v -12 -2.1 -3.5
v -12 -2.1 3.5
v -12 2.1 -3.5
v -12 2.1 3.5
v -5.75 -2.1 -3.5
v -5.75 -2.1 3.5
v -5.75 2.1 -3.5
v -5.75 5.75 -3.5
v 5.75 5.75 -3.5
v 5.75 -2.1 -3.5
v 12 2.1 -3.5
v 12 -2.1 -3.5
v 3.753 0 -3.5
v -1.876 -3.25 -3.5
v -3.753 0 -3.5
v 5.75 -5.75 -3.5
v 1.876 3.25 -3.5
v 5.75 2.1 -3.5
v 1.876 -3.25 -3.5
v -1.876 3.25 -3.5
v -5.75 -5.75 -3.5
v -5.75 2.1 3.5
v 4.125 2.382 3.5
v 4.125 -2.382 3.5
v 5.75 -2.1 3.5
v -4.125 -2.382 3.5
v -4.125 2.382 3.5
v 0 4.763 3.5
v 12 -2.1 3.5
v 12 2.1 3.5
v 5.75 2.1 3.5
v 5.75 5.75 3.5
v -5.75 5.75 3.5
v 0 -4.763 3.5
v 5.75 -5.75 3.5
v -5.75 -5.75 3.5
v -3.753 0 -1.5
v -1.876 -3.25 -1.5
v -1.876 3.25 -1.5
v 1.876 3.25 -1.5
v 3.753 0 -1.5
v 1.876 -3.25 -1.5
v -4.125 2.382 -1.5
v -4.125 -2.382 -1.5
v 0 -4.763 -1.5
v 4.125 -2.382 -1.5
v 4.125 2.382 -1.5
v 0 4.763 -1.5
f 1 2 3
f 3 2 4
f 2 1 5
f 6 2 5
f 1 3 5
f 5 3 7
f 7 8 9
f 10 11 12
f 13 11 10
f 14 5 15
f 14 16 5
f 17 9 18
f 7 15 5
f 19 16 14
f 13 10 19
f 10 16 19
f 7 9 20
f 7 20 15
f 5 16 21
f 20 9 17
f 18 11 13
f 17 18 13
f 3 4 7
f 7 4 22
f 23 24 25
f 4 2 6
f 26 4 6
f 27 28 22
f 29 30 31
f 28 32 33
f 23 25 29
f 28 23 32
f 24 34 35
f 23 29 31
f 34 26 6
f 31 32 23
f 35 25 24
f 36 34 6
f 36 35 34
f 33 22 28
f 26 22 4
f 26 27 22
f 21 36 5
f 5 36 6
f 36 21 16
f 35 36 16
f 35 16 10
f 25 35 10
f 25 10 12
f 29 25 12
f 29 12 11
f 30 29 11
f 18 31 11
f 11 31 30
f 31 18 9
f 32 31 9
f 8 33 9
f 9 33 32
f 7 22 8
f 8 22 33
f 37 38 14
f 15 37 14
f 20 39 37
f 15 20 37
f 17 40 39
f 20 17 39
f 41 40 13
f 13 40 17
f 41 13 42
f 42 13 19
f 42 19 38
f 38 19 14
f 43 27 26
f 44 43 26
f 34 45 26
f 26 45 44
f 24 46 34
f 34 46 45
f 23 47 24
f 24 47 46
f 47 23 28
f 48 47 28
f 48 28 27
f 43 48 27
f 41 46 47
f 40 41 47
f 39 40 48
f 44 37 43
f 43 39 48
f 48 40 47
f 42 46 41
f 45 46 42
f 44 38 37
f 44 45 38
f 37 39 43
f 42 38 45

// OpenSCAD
da6 = 1 / cos(180 / 6) / 2;
da8 = 1 / cos(180 / 8) / 2;

rod_hole_diam = 6.5;
nut_diam = 8.25;
socket_depth = 5;
thickness = 2;

carriage_width = 24;
carriage_inside = 11.5;
carriage_slot_width = 4.2;

module adapter_body() {
  cube([carriage_width,carriage_slot_width,socket_depth+thickness],center=true);
  cube([carriage_inside,carriage_inside,socket_depth+thickness],center=true);
}

module adapter_holes() {
  // nut hole
  translate([0,0,thickness/2+0.025]) rotate([0,0,90])
    cylinder(r=nut_diam*da6,h=socket_depth+0.05,$fn=6,center=true);

  translate([0,0,-socket_depth/2-thickness/2+0.05])
    cylinder(r=rod_hole_diam*da6,h=thickness*2,$fn=6,center=true);
}

module adapter() {
  difference() {
    adapter_body();
    adapter_holes();
  }
}

adapter();
